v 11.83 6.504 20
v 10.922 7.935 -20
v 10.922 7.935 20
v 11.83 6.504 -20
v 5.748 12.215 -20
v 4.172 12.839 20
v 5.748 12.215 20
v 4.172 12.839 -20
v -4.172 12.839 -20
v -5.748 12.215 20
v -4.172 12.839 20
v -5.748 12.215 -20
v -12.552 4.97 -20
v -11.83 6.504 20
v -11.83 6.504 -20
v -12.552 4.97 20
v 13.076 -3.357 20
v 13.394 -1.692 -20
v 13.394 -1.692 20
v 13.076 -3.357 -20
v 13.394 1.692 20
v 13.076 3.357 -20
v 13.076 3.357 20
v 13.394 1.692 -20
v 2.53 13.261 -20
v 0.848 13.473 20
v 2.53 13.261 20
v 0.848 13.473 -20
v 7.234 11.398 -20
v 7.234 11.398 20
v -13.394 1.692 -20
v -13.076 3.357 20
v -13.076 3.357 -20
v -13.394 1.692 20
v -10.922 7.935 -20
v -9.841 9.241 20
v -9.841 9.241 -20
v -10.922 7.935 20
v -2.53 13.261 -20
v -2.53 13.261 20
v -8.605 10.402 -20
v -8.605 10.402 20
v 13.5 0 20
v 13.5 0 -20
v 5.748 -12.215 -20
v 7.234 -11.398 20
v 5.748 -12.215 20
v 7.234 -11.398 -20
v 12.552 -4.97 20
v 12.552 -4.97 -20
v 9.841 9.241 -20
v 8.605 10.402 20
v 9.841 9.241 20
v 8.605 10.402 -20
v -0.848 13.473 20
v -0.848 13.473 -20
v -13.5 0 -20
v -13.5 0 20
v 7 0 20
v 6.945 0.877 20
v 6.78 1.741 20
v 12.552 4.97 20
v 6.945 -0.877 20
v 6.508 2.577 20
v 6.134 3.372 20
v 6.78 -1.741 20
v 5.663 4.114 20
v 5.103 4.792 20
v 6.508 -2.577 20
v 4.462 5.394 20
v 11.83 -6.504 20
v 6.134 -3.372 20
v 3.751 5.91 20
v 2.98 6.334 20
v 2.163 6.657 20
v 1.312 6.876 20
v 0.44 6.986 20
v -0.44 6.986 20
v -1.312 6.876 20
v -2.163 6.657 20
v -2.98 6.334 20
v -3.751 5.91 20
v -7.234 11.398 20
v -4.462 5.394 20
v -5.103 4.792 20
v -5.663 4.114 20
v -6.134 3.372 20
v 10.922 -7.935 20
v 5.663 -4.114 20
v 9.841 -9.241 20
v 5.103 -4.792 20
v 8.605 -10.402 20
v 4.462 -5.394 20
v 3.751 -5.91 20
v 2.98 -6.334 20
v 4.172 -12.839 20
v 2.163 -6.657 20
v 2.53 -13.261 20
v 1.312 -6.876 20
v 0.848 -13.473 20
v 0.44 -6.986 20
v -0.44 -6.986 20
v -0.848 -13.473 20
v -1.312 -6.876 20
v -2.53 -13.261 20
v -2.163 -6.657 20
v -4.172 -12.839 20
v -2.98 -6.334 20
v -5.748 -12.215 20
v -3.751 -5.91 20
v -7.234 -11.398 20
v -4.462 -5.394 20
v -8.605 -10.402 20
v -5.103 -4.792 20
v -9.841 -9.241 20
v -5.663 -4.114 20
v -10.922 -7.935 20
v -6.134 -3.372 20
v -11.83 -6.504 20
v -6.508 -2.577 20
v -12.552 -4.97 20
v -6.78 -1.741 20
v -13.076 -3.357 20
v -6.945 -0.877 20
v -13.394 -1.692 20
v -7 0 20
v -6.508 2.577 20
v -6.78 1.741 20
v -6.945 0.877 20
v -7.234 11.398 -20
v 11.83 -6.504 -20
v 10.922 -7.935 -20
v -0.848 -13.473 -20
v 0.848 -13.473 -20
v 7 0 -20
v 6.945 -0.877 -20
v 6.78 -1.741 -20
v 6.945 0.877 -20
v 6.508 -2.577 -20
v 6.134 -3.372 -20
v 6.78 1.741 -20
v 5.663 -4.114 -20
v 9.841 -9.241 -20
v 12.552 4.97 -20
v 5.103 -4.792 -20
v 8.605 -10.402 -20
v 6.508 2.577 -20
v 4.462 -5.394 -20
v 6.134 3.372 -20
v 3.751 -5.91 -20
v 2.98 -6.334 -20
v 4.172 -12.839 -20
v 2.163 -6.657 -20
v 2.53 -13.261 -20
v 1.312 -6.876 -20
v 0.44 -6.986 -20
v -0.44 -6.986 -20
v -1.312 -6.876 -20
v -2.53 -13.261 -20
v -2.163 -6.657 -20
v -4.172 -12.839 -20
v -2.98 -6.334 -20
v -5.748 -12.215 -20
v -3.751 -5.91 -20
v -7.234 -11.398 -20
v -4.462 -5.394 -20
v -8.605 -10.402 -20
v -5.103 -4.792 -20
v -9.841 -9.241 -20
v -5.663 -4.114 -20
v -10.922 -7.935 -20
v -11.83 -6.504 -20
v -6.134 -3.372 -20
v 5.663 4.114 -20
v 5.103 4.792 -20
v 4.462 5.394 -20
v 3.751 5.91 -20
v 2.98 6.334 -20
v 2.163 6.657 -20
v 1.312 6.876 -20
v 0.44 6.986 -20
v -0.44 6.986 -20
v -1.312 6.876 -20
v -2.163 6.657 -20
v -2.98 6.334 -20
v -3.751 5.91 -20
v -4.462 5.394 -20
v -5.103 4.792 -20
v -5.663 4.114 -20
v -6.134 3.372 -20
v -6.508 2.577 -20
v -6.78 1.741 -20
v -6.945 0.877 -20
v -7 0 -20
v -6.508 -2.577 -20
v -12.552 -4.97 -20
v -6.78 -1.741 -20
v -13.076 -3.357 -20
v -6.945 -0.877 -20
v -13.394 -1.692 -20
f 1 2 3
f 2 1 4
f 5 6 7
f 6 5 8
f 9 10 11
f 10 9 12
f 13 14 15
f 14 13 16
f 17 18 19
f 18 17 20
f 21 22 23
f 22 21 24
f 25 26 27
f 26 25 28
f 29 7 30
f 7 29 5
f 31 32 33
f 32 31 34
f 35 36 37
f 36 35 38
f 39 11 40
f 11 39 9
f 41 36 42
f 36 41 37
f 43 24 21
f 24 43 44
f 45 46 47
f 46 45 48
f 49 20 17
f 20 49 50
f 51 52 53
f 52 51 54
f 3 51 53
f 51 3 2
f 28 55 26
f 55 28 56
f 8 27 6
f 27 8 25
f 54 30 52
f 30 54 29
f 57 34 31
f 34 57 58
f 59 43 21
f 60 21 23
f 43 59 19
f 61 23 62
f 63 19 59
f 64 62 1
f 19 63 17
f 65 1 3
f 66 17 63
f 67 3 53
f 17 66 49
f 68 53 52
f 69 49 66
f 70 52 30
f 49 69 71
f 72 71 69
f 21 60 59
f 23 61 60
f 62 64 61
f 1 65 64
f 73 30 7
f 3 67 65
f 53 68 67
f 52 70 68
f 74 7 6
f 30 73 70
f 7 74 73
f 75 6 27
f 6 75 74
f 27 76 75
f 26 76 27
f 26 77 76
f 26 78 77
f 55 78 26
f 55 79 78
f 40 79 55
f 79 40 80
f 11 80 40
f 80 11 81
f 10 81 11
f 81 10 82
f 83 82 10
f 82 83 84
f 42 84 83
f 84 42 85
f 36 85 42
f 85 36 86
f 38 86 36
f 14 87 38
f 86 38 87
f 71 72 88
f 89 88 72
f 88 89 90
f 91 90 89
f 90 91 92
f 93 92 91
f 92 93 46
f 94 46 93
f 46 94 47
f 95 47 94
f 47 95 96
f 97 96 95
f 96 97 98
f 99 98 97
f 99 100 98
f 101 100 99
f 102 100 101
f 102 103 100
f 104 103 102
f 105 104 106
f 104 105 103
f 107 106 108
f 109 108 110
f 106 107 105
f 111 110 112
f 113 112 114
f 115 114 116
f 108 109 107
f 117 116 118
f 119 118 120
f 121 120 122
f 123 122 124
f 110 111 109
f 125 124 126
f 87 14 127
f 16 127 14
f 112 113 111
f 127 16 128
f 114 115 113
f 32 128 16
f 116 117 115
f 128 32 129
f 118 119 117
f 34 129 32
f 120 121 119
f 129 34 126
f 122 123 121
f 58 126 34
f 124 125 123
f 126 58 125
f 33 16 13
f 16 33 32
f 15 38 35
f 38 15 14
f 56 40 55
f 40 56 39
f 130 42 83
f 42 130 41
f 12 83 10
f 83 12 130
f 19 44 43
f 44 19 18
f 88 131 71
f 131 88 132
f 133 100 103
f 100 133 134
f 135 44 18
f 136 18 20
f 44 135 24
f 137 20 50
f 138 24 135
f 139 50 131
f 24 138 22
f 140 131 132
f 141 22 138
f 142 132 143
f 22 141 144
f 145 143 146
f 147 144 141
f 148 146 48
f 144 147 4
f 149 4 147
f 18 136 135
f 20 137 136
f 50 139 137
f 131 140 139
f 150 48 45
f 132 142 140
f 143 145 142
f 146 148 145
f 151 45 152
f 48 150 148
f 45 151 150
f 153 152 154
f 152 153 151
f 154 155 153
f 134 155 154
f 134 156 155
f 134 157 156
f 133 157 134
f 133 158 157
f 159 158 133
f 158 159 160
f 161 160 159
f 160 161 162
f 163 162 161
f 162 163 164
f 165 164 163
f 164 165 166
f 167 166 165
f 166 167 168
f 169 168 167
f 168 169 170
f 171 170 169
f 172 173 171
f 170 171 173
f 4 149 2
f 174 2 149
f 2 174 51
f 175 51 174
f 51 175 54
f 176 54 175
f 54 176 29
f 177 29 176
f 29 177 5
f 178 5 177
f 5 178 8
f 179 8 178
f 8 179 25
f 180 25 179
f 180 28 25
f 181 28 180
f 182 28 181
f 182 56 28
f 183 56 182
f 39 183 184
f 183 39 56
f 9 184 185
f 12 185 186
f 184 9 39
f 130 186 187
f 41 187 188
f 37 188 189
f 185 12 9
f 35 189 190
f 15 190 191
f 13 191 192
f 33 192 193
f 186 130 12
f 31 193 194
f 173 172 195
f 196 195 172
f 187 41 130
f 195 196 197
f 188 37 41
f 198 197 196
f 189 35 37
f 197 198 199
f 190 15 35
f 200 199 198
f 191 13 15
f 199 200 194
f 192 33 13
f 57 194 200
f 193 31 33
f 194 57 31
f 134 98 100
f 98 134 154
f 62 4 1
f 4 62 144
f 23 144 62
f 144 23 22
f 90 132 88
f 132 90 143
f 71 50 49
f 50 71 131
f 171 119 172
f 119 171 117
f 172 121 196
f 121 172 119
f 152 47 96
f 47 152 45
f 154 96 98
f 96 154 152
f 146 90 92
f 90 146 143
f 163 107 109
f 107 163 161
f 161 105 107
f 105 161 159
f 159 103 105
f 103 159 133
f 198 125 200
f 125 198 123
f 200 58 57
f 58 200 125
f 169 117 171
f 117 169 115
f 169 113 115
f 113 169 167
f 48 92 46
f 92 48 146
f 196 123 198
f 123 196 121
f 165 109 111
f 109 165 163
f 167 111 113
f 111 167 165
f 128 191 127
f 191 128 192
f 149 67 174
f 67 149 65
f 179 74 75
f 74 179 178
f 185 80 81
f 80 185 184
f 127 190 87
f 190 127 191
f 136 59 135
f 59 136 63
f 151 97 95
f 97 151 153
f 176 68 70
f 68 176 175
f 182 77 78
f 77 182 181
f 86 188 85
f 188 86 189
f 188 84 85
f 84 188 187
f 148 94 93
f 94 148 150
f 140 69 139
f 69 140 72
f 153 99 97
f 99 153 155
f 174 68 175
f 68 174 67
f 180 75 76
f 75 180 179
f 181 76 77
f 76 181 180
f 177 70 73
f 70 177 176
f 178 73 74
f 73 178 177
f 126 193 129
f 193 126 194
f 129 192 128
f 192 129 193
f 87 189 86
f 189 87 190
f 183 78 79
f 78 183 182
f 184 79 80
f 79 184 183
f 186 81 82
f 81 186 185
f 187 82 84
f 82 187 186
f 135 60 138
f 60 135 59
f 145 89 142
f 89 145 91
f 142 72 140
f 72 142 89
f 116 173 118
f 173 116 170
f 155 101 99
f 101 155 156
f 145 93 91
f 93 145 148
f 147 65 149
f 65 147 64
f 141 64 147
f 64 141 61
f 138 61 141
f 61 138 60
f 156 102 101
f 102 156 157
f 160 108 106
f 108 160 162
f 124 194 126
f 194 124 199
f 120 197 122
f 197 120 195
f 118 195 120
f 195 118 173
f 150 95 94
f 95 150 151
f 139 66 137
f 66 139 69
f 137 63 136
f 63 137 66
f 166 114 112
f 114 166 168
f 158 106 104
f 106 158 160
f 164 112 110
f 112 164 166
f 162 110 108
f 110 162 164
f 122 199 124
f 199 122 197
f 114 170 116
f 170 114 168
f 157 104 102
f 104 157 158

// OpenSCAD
$fn = 50;


difference() {
	union() {
		translate(v = [0, 0, -20.0000000000]) {
			cylinder(h = 40, r = 13.5000000000);
		}
	}
	union() {
		translate(v = [0, 0, -100.0000000000]) {
			cylinder(h = 200, r = 7);
		}
	}
}
